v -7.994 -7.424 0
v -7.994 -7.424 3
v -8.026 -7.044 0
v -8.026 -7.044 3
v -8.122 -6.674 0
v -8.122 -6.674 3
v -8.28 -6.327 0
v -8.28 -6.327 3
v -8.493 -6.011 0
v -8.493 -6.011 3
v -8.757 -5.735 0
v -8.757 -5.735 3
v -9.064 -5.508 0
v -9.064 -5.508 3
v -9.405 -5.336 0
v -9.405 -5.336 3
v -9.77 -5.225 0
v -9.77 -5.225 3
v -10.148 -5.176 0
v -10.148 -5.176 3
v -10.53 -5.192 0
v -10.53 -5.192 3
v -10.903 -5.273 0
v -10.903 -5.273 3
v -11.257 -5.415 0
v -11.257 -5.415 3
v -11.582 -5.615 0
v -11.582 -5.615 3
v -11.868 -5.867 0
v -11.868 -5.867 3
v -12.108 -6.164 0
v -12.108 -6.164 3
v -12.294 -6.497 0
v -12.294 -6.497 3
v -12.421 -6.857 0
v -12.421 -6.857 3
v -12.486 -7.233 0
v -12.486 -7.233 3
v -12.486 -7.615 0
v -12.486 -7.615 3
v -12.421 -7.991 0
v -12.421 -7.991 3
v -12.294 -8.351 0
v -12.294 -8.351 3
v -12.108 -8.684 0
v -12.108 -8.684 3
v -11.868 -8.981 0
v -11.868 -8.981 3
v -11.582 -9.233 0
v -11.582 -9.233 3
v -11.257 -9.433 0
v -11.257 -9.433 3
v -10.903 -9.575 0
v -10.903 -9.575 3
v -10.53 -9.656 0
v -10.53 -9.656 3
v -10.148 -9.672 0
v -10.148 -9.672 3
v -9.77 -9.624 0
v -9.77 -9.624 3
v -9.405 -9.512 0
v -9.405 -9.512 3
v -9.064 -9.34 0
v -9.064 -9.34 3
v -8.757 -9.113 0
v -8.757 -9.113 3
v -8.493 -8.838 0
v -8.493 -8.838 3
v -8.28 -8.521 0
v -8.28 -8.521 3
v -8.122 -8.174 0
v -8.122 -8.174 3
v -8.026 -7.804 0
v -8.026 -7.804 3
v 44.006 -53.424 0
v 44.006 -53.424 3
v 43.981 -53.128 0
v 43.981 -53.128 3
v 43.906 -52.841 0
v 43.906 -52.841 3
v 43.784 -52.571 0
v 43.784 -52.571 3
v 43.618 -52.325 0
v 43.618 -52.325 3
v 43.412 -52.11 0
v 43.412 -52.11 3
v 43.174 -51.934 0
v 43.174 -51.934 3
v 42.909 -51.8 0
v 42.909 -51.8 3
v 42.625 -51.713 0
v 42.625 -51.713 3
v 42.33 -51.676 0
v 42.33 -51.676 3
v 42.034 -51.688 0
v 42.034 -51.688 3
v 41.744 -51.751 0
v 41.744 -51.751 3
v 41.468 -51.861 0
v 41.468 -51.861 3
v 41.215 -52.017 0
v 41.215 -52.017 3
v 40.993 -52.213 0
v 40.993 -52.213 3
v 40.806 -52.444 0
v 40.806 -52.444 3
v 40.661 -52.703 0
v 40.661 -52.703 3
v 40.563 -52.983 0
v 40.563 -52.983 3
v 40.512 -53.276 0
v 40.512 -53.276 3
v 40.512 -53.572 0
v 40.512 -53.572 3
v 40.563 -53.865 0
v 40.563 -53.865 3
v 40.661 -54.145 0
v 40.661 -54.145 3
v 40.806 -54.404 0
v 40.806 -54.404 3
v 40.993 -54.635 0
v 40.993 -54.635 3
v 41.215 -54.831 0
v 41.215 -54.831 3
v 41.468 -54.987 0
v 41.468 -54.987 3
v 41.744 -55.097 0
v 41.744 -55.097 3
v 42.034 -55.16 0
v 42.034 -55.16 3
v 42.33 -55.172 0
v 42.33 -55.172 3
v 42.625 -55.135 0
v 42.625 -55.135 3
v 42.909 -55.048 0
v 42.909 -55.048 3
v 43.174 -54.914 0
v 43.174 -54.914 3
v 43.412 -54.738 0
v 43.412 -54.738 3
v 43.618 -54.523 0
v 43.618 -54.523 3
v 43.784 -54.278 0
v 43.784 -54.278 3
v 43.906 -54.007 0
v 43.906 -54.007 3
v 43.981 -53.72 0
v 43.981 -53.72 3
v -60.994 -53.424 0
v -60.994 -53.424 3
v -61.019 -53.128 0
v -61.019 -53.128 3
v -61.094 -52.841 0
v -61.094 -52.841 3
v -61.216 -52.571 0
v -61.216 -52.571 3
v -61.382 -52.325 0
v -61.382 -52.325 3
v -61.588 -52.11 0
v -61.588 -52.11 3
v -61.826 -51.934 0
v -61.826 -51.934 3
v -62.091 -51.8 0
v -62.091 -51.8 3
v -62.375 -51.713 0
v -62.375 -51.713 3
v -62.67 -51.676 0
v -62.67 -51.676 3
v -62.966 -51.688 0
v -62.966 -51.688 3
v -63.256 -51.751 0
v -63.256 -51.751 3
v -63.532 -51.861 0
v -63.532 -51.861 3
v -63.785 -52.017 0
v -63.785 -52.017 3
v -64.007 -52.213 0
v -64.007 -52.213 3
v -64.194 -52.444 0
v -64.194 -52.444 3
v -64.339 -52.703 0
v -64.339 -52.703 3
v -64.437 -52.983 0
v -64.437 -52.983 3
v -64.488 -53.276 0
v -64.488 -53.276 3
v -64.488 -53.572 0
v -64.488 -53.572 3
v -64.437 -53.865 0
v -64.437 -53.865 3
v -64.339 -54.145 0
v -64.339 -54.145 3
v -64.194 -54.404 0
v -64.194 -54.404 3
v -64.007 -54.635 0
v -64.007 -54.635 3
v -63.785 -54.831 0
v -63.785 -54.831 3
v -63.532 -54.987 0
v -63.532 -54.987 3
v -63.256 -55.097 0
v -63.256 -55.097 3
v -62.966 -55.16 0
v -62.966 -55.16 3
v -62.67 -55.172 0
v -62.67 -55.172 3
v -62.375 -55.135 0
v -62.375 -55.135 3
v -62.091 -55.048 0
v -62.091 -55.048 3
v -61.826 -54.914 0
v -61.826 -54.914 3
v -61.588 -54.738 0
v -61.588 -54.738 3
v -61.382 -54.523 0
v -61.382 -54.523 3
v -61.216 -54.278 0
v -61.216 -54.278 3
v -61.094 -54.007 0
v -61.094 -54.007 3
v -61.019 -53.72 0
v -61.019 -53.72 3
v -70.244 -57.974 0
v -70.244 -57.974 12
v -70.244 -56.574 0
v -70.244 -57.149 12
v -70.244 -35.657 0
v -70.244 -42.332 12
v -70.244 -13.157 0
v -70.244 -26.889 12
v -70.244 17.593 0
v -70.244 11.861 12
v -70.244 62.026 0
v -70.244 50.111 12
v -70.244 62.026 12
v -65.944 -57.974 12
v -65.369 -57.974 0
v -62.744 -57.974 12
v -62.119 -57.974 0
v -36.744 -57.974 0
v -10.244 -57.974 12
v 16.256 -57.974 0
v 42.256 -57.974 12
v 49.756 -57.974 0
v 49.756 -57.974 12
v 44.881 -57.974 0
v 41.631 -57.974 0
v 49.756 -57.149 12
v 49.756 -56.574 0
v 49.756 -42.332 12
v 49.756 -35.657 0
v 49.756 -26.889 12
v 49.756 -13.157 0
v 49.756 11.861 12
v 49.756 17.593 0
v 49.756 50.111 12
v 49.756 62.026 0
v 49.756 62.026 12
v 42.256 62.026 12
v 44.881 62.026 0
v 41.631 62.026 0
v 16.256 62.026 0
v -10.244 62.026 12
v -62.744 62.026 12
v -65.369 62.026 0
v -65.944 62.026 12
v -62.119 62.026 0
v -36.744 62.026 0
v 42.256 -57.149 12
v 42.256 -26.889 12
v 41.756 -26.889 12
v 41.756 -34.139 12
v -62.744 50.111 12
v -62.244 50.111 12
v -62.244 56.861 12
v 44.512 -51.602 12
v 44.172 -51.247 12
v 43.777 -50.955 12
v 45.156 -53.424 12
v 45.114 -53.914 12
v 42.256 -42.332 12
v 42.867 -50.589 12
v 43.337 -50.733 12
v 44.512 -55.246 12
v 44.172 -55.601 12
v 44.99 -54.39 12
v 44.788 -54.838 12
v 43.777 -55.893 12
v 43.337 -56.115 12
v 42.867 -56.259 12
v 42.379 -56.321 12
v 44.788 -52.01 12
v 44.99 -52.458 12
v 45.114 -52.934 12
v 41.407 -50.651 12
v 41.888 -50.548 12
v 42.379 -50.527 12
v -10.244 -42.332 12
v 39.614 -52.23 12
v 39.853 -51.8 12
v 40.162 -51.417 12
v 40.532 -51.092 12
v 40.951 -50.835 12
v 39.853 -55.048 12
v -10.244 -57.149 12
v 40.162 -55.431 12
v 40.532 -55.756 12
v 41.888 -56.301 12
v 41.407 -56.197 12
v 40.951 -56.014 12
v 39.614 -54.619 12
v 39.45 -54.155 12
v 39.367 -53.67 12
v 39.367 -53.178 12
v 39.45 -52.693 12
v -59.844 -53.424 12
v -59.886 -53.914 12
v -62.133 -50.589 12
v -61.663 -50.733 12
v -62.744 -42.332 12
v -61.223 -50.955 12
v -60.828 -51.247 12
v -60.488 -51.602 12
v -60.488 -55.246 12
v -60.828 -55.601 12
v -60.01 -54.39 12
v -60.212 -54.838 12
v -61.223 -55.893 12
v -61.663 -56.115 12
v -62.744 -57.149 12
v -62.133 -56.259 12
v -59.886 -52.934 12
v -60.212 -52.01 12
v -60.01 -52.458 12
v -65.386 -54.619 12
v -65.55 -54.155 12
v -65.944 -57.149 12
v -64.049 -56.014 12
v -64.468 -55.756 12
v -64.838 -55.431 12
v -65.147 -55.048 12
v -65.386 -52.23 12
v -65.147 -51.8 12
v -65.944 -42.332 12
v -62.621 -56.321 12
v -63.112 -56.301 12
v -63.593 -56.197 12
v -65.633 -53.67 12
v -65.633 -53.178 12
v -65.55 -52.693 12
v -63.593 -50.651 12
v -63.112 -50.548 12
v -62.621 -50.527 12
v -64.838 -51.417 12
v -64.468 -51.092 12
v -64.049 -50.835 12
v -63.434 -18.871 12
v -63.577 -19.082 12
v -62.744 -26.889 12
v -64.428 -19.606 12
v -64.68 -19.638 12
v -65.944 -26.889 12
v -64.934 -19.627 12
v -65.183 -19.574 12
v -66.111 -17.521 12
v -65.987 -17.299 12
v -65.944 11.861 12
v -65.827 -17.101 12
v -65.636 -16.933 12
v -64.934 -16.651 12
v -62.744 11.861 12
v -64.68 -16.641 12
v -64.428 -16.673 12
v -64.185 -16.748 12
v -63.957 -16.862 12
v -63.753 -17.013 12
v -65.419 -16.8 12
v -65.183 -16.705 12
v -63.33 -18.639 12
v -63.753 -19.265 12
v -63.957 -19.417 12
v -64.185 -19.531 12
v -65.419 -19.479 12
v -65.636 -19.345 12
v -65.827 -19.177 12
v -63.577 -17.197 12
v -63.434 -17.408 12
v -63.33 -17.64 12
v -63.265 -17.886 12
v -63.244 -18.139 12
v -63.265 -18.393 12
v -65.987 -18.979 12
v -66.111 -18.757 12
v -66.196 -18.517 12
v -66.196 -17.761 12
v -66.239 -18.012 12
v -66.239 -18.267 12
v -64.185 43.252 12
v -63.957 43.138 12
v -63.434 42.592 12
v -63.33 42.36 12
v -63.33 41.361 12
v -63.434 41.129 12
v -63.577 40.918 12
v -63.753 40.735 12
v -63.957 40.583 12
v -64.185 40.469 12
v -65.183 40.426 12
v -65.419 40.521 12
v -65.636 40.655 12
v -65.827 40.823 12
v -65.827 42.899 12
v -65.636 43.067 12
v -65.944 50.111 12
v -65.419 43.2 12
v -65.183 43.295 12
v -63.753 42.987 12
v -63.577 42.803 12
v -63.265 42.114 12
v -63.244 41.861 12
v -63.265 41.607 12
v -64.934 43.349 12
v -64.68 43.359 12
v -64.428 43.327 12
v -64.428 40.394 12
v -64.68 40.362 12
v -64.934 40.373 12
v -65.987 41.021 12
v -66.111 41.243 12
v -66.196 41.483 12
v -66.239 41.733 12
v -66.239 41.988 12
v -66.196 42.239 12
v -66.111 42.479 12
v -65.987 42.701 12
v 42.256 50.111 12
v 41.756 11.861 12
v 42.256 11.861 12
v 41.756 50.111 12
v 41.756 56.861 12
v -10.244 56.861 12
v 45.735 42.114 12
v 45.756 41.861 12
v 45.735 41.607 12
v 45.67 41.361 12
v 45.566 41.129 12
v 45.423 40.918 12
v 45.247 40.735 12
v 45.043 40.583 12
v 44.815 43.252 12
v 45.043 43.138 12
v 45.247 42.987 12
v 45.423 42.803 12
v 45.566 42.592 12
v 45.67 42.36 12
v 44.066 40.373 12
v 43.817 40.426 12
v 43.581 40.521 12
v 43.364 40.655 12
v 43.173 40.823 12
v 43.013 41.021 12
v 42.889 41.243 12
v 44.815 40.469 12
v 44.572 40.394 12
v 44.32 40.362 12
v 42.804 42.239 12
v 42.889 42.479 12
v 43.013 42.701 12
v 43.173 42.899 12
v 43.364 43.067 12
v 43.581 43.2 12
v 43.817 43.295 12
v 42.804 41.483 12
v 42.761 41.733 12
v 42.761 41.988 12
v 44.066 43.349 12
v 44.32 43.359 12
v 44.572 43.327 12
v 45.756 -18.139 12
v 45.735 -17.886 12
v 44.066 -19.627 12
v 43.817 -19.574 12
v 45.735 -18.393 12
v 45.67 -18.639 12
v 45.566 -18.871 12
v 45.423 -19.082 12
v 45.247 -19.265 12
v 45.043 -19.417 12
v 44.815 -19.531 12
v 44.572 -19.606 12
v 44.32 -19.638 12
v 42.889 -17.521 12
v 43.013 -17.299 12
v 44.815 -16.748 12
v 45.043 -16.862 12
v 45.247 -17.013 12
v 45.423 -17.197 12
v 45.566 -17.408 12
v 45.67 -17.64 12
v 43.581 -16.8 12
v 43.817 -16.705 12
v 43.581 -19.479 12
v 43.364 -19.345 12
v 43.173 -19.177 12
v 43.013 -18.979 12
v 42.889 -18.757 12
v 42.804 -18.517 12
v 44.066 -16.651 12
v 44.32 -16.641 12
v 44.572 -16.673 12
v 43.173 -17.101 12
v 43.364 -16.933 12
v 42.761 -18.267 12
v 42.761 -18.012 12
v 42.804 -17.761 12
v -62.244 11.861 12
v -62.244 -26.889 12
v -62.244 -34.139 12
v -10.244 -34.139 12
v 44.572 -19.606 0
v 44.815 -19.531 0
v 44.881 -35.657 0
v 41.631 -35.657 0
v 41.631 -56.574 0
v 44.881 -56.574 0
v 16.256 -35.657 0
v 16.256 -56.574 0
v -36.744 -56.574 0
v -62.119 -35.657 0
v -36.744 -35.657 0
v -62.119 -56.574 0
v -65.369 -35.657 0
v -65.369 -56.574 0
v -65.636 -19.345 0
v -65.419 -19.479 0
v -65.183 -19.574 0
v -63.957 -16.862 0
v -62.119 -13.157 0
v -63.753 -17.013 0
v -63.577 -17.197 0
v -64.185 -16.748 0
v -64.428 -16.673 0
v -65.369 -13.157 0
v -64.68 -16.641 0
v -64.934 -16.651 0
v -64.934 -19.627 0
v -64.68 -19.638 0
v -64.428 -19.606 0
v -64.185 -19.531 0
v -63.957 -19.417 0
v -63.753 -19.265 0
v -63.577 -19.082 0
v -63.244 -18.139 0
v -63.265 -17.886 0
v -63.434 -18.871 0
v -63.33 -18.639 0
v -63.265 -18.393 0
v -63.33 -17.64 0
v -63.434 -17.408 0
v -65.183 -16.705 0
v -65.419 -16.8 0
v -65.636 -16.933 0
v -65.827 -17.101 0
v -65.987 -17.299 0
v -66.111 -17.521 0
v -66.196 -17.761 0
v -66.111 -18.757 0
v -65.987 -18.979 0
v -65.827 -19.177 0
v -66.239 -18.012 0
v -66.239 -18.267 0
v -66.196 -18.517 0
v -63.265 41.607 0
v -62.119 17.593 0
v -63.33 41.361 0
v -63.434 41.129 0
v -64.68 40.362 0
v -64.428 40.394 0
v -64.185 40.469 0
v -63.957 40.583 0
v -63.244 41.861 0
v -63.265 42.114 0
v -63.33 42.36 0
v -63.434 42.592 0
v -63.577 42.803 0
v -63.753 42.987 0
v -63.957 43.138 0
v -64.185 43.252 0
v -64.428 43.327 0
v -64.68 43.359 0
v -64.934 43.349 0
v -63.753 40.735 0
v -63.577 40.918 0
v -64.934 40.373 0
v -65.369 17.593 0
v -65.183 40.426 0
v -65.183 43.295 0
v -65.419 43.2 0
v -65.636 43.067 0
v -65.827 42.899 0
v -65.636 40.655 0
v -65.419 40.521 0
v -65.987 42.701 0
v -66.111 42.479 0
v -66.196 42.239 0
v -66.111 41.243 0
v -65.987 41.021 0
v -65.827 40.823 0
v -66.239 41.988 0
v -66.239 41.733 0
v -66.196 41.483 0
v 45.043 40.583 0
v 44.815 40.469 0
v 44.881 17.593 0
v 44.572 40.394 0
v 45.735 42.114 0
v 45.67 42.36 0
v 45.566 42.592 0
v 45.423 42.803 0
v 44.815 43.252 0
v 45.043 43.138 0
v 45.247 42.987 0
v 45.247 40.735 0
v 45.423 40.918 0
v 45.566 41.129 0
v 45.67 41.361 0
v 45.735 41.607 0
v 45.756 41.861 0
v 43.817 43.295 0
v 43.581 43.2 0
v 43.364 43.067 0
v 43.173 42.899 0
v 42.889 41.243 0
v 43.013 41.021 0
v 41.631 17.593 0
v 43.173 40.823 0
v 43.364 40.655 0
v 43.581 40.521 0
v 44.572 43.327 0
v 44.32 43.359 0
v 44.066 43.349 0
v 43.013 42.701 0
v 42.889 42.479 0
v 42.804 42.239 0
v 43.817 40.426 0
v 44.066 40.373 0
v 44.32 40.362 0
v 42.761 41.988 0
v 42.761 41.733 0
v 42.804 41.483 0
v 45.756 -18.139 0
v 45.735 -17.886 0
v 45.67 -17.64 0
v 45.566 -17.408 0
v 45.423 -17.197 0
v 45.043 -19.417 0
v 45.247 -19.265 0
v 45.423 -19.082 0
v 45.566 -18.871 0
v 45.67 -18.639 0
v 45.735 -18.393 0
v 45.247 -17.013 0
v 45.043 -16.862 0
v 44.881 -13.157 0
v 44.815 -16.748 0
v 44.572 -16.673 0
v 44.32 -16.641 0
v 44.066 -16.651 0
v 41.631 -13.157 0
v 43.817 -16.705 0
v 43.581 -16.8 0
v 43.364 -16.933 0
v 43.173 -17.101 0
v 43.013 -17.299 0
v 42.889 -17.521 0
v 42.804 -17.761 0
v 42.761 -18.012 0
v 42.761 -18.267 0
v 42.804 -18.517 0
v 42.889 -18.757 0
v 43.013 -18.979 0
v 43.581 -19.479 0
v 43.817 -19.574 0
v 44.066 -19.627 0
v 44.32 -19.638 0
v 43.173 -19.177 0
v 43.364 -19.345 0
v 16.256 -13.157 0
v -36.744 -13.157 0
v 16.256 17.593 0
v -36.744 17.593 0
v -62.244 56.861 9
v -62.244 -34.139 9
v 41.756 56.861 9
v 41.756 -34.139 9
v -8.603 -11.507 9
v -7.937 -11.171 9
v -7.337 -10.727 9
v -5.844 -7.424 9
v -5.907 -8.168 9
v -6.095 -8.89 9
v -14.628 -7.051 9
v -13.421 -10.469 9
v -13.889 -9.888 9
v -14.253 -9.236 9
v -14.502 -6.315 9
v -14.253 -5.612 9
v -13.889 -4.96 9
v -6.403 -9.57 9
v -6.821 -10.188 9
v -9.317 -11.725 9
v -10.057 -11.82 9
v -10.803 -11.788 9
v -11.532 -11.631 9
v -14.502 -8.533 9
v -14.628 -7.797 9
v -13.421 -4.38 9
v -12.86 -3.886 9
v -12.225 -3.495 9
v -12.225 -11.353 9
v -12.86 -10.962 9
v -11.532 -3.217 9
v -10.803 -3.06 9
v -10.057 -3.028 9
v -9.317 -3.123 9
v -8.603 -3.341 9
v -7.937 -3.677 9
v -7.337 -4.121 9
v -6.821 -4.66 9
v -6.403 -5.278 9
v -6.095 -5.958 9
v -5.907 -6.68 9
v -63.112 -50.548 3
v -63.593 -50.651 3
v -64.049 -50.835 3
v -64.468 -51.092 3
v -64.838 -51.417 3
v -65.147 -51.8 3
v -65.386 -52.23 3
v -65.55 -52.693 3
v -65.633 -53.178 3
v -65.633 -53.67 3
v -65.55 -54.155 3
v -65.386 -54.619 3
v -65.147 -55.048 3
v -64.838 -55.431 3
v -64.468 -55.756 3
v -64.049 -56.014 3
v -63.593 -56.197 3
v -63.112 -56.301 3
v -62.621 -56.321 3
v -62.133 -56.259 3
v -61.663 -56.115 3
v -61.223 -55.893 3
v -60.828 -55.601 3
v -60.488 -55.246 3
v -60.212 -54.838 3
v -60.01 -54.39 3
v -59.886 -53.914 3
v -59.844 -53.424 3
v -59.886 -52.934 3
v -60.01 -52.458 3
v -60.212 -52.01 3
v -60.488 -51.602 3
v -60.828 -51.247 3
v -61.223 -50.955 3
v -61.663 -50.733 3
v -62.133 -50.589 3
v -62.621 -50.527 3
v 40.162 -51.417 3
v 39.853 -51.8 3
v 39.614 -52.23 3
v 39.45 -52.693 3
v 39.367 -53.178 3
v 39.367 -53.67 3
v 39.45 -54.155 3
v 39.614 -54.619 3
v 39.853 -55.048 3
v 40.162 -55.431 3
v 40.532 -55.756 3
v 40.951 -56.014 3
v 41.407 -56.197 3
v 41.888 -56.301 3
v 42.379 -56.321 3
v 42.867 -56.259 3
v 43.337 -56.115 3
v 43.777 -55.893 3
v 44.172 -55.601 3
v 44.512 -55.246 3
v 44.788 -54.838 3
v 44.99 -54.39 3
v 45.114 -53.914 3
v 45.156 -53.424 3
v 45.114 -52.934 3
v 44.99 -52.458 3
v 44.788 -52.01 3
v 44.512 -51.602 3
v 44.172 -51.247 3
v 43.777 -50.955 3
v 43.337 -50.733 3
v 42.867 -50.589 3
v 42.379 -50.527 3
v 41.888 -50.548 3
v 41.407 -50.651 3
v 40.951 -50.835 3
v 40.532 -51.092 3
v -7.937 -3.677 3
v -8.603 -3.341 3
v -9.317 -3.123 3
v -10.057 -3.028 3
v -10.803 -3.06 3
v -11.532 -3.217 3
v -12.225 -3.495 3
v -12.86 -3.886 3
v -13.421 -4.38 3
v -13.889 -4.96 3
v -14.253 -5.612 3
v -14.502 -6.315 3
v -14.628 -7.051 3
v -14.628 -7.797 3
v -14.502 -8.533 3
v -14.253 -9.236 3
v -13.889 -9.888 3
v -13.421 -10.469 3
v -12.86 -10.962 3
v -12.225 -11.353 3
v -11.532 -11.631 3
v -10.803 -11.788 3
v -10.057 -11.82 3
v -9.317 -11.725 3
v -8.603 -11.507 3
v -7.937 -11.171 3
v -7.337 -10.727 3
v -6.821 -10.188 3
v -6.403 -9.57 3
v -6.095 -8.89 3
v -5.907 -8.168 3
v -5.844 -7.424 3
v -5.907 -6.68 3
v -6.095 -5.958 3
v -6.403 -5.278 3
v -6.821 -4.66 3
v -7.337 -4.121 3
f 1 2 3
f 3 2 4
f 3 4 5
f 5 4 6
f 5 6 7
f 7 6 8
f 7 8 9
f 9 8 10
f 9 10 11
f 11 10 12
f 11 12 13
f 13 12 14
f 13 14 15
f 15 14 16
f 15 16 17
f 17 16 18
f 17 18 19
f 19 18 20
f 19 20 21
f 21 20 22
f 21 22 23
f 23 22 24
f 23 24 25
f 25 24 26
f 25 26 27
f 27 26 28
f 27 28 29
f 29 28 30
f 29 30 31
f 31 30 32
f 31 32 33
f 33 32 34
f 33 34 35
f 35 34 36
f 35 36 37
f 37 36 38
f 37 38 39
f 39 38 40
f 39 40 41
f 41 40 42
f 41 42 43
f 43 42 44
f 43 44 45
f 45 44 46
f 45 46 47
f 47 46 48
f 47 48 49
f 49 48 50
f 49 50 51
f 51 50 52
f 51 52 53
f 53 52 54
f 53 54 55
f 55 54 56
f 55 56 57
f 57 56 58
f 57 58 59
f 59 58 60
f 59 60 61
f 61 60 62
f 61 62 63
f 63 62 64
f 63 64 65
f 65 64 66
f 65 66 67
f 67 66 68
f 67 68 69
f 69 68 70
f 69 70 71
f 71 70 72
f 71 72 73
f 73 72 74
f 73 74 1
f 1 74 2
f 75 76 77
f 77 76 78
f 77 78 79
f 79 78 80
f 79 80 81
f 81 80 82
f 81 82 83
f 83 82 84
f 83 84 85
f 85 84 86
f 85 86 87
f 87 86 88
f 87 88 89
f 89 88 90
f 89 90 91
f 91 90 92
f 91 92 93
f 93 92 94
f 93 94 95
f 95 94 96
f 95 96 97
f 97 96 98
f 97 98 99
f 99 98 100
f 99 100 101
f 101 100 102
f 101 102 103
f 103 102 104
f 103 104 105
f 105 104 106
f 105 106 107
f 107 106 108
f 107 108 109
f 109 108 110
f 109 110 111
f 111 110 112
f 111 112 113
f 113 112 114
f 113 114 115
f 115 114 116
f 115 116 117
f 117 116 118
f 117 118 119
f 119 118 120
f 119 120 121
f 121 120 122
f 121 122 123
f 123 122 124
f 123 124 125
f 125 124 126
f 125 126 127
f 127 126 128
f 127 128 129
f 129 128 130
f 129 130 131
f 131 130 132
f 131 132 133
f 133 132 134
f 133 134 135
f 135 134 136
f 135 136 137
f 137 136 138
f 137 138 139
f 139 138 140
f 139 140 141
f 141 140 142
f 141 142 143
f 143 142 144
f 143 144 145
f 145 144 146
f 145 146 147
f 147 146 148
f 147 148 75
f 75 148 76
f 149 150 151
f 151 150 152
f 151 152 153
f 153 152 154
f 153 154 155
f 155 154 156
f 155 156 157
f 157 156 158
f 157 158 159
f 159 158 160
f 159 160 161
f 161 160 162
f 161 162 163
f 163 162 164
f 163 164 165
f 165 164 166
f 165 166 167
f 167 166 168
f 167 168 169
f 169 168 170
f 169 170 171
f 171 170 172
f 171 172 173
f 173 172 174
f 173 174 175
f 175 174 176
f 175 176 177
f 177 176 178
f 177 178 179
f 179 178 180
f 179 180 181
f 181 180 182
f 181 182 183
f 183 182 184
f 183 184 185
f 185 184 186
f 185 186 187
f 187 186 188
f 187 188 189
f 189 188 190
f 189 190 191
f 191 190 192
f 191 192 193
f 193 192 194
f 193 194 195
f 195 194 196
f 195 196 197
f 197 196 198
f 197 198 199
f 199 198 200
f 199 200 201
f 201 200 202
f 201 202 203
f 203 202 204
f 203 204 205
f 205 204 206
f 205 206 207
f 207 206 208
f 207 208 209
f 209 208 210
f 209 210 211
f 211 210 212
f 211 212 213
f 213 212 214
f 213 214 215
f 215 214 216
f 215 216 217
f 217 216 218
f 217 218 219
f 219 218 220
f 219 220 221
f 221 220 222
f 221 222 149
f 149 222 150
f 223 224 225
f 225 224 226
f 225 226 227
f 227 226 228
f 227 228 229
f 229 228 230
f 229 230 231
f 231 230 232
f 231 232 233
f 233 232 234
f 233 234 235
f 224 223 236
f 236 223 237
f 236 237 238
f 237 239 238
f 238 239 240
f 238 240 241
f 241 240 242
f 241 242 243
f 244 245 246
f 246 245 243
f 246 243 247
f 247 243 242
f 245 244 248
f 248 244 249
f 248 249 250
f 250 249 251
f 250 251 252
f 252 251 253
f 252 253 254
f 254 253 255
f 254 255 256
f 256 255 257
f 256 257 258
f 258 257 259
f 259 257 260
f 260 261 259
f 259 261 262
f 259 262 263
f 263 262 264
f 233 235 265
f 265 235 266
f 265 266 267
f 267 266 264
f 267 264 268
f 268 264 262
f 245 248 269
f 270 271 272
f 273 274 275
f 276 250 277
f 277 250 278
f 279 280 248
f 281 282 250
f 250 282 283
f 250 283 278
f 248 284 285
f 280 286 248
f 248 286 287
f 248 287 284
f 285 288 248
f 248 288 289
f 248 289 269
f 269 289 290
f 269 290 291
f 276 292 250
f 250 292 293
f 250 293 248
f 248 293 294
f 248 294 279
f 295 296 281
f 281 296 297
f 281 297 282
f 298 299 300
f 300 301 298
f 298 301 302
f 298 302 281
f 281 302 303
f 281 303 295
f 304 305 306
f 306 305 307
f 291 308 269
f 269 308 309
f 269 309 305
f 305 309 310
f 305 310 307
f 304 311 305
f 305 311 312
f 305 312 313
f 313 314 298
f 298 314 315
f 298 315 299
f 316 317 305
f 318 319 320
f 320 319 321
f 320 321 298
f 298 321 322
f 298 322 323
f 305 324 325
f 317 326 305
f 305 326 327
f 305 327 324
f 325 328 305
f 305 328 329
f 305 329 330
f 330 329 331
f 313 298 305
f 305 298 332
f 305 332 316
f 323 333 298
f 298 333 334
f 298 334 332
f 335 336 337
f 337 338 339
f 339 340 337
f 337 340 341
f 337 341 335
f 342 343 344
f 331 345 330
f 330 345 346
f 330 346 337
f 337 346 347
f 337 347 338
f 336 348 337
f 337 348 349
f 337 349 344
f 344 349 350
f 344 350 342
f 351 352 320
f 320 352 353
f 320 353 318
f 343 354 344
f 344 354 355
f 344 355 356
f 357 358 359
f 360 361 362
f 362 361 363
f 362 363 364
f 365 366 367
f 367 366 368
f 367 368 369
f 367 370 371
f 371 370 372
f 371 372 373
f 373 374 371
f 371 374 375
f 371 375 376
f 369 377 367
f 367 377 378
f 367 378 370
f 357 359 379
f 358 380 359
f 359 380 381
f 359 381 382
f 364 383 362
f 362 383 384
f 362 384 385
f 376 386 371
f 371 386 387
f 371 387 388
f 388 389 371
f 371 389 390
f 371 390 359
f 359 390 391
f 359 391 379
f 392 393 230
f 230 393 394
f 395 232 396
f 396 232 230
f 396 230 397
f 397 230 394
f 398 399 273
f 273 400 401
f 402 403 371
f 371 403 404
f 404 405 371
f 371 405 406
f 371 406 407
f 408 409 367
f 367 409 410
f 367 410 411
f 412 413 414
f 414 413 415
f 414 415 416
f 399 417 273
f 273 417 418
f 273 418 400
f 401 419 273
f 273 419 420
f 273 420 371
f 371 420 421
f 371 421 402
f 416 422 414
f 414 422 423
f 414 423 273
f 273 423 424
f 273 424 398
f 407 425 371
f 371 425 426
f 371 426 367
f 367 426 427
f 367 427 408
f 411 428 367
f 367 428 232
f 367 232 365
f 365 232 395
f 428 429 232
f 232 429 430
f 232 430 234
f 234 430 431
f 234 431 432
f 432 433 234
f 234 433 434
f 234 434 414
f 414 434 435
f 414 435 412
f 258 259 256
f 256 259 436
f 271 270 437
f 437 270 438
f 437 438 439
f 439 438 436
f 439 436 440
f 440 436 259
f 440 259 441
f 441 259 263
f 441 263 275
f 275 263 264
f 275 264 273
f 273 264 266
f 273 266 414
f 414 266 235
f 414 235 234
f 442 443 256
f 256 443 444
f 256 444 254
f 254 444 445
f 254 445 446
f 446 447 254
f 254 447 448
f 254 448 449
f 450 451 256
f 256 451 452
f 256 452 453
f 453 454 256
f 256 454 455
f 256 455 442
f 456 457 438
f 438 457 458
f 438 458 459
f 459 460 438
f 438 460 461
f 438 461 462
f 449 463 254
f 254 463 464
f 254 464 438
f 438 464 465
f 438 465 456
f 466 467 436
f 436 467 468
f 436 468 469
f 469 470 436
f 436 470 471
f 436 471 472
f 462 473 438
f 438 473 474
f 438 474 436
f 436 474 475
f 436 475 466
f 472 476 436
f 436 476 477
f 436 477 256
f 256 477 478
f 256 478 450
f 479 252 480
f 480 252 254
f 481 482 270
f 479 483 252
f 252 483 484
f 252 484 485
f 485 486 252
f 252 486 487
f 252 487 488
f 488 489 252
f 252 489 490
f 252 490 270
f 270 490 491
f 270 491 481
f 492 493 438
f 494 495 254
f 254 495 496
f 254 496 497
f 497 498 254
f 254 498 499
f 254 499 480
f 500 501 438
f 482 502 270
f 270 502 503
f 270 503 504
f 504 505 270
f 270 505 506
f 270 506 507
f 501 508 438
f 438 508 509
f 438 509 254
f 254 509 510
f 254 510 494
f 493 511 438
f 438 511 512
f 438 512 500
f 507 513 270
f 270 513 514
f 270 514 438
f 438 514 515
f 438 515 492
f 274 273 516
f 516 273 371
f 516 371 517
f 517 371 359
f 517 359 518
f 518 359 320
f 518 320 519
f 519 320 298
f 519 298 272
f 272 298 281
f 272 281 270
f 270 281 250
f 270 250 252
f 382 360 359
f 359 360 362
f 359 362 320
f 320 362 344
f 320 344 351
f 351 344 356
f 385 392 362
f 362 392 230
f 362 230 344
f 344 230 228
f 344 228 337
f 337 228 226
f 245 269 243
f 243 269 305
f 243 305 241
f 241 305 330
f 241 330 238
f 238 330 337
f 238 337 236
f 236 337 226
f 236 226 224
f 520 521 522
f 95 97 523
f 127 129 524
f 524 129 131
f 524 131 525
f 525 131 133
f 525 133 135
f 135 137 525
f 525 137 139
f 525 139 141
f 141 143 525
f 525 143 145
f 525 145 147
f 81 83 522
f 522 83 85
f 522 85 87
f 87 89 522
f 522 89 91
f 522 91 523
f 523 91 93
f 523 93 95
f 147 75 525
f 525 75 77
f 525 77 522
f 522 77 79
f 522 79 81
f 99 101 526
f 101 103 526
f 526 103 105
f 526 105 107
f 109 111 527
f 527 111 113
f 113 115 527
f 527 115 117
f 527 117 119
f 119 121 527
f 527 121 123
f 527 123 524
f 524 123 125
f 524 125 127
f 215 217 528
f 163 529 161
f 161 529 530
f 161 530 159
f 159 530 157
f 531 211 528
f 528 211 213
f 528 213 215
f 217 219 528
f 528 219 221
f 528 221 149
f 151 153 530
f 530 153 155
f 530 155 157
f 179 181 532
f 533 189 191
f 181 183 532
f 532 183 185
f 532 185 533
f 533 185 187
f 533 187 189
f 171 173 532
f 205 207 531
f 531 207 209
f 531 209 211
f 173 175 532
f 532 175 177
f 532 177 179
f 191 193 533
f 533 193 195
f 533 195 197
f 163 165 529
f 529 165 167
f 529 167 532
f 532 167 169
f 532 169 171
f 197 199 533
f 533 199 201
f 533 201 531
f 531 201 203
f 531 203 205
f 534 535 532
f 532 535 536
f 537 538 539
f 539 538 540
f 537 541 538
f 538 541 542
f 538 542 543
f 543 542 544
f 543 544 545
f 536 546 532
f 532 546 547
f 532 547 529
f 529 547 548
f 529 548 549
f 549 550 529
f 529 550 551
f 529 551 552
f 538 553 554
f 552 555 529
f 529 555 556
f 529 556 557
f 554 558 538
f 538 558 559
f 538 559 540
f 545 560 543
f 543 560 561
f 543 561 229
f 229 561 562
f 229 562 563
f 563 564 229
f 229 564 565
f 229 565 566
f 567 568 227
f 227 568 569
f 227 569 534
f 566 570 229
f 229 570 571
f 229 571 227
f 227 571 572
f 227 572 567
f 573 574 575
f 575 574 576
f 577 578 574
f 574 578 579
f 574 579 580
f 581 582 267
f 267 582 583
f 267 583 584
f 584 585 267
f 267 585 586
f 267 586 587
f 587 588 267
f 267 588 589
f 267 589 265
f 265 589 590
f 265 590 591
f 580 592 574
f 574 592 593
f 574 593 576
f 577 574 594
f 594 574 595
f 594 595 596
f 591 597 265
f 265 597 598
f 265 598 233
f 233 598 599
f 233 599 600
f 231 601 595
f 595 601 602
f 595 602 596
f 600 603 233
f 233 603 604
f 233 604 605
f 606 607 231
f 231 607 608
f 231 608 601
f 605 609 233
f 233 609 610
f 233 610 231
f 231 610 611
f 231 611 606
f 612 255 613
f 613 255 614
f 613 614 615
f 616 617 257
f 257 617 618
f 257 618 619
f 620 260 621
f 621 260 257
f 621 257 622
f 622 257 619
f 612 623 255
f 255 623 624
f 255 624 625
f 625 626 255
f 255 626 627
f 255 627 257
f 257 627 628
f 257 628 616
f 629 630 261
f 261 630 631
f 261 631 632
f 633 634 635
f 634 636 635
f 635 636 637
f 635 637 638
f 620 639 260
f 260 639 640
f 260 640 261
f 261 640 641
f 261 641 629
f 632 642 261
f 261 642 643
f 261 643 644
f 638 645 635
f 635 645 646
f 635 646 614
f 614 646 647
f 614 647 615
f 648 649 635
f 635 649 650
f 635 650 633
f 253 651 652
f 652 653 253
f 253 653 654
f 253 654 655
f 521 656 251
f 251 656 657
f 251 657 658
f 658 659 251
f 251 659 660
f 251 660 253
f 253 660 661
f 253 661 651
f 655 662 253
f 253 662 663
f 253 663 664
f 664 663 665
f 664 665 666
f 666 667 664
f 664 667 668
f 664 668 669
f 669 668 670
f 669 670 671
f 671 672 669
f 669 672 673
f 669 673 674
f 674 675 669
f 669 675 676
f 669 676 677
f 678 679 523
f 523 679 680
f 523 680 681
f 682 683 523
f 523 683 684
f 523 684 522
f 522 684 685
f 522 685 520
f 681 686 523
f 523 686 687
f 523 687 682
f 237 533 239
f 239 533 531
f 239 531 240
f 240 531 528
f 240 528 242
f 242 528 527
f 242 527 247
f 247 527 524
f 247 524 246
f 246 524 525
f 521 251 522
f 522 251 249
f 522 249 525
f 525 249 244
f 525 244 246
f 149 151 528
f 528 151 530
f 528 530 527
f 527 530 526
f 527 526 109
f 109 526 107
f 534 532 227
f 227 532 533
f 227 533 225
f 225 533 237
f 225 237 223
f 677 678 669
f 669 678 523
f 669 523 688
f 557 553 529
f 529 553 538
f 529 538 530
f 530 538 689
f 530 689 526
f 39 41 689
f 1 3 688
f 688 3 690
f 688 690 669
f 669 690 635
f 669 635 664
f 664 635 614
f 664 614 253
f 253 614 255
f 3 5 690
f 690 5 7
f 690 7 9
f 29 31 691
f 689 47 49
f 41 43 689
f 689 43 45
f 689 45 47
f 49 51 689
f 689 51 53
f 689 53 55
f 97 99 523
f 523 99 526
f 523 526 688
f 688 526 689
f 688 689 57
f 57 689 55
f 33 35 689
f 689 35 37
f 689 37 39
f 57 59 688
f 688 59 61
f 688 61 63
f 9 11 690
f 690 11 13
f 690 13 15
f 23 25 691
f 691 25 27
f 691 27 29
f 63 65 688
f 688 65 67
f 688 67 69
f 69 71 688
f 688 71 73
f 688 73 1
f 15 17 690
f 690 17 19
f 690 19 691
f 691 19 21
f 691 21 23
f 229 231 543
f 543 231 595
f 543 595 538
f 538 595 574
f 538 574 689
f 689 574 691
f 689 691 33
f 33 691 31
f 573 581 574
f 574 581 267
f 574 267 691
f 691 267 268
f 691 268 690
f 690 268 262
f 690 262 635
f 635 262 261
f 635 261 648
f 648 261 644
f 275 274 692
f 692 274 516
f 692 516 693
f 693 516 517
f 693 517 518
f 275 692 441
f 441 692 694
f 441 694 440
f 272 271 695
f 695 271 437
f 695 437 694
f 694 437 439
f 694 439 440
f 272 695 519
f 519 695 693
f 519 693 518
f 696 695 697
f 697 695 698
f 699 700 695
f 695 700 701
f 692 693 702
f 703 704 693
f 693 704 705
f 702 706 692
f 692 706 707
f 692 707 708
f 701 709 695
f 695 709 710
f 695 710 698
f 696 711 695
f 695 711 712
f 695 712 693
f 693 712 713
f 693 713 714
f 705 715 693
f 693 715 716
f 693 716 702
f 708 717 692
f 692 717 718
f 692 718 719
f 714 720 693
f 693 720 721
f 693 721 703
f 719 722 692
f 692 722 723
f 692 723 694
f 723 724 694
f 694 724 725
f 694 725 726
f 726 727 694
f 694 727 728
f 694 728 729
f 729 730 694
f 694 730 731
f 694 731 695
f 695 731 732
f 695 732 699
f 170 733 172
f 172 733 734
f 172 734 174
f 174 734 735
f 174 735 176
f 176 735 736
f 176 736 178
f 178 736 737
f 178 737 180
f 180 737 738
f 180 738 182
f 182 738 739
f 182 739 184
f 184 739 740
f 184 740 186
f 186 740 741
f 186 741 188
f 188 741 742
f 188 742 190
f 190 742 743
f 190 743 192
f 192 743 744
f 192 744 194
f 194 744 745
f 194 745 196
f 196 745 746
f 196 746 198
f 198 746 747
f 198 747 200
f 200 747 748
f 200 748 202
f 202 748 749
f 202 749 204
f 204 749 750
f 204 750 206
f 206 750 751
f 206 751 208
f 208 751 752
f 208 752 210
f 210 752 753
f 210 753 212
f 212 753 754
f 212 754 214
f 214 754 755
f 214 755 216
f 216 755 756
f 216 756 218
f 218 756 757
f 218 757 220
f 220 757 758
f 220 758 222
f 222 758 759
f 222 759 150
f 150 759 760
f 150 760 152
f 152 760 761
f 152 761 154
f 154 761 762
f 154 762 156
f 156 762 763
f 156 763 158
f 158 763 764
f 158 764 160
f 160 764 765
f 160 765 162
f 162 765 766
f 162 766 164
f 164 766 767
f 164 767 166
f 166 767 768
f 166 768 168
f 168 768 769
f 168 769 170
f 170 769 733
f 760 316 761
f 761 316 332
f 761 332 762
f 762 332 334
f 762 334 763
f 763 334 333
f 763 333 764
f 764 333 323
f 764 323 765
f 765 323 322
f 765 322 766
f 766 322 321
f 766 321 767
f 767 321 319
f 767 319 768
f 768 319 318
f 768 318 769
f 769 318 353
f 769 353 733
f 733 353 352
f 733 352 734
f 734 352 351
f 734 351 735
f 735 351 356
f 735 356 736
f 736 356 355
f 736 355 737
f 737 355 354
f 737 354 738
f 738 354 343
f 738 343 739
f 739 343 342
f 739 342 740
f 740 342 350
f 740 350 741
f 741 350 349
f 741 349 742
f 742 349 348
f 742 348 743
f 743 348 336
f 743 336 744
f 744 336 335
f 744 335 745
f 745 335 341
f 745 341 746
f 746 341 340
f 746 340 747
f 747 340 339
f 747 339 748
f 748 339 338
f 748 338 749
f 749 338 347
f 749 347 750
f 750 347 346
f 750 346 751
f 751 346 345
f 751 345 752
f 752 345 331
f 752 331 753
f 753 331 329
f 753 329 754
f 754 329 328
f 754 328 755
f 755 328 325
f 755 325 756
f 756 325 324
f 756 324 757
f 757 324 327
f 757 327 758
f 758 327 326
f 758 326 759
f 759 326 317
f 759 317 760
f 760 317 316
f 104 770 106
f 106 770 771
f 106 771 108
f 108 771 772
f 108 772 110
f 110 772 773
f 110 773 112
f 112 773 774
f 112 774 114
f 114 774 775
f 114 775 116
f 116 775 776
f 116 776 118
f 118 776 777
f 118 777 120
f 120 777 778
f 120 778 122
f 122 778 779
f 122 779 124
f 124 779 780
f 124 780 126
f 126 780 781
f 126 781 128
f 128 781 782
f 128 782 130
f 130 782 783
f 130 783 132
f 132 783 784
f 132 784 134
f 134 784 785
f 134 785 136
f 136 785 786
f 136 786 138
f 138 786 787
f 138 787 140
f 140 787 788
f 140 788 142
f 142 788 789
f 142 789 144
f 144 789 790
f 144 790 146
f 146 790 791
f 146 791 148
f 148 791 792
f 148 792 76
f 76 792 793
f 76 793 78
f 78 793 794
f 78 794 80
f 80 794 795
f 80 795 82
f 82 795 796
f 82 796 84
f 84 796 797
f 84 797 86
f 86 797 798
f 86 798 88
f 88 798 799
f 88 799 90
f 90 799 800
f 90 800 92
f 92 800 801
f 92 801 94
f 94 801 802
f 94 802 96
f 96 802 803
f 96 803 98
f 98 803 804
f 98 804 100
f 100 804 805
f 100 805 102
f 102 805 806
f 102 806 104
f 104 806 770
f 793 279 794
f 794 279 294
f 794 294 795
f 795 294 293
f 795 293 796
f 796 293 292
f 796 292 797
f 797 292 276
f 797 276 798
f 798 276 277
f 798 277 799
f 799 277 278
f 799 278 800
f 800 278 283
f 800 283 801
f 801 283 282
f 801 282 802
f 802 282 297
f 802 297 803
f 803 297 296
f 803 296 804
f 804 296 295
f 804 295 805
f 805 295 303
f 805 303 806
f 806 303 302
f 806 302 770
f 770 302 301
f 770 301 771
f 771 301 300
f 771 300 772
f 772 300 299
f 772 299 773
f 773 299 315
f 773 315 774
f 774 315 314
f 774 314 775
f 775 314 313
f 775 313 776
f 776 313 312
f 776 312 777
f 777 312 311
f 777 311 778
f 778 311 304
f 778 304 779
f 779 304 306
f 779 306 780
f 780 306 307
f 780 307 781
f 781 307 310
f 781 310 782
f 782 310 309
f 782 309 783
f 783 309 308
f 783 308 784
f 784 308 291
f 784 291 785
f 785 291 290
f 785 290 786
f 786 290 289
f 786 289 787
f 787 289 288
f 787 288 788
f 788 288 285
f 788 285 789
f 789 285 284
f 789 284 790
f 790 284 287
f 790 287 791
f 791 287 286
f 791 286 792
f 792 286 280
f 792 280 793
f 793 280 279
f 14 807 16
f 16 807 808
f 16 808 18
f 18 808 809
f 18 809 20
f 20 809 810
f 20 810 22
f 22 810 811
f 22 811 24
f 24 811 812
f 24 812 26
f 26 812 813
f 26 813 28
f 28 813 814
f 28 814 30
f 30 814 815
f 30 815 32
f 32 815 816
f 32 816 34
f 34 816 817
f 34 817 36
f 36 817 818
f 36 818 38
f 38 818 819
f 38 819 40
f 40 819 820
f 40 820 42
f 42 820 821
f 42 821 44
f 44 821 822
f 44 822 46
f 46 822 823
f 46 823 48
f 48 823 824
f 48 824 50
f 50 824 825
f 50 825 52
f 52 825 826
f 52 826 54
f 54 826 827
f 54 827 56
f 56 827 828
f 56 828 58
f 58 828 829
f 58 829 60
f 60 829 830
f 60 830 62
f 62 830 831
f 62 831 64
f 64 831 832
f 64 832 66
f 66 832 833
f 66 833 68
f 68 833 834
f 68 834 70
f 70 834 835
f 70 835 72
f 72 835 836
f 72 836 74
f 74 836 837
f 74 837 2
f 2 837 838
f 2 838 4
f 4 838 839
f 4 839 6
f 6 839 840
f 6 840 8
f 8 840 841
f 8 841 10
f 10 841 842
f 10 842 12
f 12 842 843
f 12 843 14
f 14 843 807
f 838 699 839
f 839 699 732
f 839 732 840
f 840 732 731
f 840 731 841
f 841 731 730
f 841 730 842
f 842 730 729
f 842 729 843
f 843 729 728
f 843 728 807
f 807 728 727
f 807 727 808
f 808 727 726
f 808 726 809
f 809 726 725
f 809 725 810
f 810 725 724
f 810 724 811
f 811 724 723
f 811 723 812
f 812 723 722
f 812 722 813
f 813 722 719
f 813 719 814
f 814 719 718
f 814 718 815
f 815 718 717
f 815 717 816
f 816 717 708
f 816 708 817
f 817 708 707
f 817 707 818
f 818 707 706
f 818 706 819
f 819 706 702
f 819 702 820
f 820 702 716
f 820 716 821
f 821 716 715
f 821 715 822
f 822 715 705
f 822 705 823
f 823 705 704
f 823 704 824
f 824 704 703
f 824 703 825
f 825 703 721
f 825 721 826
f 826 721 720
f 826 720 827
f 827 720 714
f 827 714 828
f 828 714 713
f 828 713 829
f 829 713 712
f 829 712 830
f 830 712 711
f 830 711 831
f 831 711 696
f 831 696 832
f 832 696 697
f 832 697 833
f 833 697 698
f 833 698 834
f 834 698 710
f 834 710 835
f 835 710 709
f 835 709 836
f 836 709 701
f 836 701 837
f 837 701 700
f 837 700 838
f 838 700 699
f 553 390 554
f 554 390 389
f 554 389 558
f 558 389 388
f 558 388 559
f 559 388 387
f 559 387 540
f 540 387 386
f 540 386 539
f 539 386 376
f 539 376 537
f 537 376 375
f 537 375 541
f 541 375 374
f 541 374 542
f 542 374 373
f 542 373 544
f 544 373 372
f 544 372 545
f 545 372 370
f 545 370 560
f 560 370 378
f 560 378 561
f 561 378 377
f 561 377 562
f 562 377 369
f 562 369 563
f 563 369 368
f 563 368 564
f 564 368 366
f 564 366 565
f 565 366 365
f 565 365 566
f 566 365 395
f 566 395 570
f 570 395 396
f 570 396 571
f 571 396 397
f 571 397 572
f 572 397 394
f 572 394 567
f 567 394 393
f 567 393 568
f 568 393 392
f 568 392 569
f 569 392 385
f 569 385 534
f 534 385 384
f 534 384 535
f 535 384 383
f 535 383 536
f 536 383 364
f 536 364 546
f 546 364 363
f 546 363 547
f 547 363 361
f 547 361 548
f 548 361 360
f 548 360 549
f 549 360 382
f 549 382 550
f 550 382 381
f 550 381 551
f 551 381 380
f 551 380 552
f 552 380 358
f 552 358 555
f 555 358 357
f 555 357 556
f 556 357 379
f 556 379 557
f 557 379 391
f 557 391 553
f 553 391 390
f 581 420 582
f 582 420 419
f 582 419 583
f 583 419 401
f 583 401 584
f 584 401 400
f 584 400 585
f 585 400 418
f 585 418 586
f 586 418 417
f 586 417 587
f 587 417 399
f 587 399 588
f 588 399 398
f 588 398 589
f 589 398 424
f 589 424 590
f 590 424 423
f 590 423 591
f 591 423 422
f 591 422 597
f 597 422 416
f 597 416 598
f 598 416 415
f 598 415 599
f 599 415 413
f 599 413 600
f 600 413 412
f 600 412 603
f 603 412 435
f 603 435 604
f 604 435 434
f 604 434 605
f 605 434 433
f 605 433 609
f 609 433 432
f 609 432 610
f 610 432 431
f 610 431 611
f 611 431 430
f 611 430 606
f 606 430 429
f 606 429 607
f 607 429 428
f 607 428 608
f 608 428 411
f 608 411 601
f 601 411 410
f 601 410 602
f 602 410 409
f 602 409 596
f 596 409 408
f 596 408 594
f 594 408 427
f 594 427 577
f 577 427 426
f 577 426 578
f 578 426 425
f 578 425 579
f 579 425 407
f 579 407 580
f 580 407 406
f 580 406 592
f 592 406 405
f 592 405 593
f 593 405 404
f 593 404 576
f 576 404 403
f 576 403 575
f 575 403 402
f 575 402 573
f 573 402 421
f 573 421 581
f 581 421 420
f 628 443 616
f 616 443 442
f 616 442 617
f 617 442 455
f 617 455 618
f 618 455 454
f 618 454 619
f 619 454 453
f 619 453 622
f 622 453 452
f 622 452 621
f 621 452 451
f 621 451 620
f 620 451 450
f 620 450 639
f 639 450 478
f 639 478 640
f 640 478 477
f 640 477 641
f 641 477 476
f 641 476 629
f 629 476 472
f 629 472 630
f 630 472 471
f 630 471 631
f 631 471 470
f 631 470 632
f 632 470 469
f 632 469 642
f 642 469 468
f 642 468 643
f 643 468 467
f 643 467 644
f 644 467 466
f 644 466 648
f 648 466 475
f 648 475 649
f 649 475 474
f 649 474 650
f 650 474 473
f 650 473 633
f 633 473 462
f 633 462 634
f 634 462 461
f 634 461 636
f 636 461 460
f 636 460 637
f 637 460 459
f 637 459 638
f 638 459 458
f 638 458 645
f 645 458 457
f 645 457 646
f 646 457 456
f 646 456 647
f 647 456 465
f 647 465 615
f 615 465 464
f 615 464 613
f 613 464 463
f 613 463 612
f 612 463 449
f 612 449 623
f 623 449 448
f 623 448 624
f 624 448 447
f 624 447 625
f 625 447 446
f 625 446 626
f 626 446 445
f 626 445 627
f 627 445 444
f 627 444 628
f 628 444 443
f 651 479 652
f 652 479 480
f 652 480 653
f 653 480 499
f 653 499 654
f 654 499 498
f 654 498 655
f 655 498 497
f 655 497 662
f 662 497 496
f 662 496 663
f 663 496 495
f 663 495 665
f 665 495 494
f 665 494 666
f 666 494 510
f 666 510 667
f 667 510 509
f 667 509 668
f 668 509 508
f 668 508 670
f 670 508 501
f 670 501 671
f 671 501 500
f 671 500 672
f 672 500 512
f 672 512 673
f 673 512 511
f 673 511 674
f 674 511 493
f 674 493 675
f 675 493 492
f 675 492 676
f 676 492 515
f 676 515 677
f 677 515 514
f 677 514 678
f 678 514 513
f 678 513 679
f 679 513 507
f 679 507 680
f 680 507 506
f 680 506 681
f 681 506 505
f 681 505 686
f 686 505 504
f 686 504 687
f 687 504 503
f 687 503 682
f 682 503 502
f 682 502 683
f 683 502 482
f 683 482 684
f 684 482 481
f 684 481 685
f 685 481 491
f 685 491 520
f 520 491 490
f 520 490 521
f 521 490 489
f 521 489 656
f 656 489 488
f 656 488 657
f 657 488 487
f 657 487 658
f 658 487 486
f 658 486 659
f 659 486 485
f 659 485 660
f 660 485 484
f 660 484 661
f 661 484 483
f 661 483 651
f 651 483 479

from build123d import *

# Parameters (mm, degrees)
SKETCH_1_W          = 120
SKETCH_1_H          = 120
EXTRUDE_1_DEPTH     = 12
SKETCH_2_W          = 104
SKETCH_2_H          = 91
CUT_EXTRUDE_1_DEPTH = 3
SKETCH_4_R          = 2.25
CUT_EXTRUDE_3_DEPTH = 12
SKETCH_6_R          = 1.75
CUT_EXTRUDE_5_DEPTH = 12
SKETCH_7_R          = 2.9
SKETCH_7_R_2        = 4.4
CUT_EXTRUDE_6_DEPTH = 9
SKETCH_8_R          = 1.5
CUT_EXTRUDE_7_DEPTH = 12


with BuildPart() as part:
    # 草图1 → 凸台-拉伸1 (new body)
    with BuildSketch(Plane.XY):
        with Locations((-10.243902439, 2.026266417)):
            Rectangle(SKETCH_1_W, SKETCH_1_H)
    extrude(amount=EXTRUDE_1_DEPTH)

    # 草图2 → 切除-拉伸1 (cut)
    with BuildSketch(Plane.XY.offset(12)):
        with Locations((-10.243902439, 11.360648518)):
            Rectangle(SKETCH_2_W, SKETCH_2_H)
    extrude(amount=-CUT_EXTRUDE_1_DEPTH, mode=Mode.SUBTRACT)

    # 草图4 → 切除-拉伸3 (cut)
    with BuildSketch(Plane.XY.offset(12)):
        with Locations((-10.243902439, -7.42403473)):
            Circle(SKETCH_4_R)
    extrude(amount=-CUT_EXTRUDE_3_DEPTH, mode=Mode.SUBTRACT)

    # 草图6 → 切除-拉伸5 (cut)
    with BuildSketch(Plane.XY.offset(12)):
        with Locations((-62.743902439, -53.42403473)):
            Circle(SKETCH_6_R)
        with Locations((42.256097561, -53.42403473)):
            Circle(SKETCH_6_R)
    extrude(amount=-CUT_EXTRUDE_5_DEPTH, mode=Mode.SUBTRACT)

    # 草图7 → 切除-拉伸6 (cut)
    with BuildSketch(Plane.XY.offset(12)):
        with Locations((-62.743902439, -53.42403473)):
            Circle(SKETCH_7_R)
        with Locations((42.256097561, -53.42403473)):
            Circle(SKETCH_7_R)
        with Locations((-10.243902439, -7.42403473)):
            Circle(SKETCH_7_R_2)
    extrude(amount=-CUT_EXTRUDE_6_DEPTH, mode=Mode.SUBTRACT)

    # 草图8 → 切除-拉伸7 (cut)
    with BuildSketch(Plane.XY.offset(12)):
        with Locations((-64.743902439, -18.139351482)):
            Circle(SKETCH_8_R)
        with Locations((-64.743902439, 41.860648518)):
            Circle(SKETCH_8_R)
        with Locations((44.256097561, 41.860648518)):
            Circle(SKETCH_8_R)
        with Locations((44.256097561, -18.139351482)):
            Circle(SKETCH_8_R)
    extrude(amount=-CUT_EXTRUDE_7_DEPTH, mode=Mode.SUBTRACT)


solid = part.part
